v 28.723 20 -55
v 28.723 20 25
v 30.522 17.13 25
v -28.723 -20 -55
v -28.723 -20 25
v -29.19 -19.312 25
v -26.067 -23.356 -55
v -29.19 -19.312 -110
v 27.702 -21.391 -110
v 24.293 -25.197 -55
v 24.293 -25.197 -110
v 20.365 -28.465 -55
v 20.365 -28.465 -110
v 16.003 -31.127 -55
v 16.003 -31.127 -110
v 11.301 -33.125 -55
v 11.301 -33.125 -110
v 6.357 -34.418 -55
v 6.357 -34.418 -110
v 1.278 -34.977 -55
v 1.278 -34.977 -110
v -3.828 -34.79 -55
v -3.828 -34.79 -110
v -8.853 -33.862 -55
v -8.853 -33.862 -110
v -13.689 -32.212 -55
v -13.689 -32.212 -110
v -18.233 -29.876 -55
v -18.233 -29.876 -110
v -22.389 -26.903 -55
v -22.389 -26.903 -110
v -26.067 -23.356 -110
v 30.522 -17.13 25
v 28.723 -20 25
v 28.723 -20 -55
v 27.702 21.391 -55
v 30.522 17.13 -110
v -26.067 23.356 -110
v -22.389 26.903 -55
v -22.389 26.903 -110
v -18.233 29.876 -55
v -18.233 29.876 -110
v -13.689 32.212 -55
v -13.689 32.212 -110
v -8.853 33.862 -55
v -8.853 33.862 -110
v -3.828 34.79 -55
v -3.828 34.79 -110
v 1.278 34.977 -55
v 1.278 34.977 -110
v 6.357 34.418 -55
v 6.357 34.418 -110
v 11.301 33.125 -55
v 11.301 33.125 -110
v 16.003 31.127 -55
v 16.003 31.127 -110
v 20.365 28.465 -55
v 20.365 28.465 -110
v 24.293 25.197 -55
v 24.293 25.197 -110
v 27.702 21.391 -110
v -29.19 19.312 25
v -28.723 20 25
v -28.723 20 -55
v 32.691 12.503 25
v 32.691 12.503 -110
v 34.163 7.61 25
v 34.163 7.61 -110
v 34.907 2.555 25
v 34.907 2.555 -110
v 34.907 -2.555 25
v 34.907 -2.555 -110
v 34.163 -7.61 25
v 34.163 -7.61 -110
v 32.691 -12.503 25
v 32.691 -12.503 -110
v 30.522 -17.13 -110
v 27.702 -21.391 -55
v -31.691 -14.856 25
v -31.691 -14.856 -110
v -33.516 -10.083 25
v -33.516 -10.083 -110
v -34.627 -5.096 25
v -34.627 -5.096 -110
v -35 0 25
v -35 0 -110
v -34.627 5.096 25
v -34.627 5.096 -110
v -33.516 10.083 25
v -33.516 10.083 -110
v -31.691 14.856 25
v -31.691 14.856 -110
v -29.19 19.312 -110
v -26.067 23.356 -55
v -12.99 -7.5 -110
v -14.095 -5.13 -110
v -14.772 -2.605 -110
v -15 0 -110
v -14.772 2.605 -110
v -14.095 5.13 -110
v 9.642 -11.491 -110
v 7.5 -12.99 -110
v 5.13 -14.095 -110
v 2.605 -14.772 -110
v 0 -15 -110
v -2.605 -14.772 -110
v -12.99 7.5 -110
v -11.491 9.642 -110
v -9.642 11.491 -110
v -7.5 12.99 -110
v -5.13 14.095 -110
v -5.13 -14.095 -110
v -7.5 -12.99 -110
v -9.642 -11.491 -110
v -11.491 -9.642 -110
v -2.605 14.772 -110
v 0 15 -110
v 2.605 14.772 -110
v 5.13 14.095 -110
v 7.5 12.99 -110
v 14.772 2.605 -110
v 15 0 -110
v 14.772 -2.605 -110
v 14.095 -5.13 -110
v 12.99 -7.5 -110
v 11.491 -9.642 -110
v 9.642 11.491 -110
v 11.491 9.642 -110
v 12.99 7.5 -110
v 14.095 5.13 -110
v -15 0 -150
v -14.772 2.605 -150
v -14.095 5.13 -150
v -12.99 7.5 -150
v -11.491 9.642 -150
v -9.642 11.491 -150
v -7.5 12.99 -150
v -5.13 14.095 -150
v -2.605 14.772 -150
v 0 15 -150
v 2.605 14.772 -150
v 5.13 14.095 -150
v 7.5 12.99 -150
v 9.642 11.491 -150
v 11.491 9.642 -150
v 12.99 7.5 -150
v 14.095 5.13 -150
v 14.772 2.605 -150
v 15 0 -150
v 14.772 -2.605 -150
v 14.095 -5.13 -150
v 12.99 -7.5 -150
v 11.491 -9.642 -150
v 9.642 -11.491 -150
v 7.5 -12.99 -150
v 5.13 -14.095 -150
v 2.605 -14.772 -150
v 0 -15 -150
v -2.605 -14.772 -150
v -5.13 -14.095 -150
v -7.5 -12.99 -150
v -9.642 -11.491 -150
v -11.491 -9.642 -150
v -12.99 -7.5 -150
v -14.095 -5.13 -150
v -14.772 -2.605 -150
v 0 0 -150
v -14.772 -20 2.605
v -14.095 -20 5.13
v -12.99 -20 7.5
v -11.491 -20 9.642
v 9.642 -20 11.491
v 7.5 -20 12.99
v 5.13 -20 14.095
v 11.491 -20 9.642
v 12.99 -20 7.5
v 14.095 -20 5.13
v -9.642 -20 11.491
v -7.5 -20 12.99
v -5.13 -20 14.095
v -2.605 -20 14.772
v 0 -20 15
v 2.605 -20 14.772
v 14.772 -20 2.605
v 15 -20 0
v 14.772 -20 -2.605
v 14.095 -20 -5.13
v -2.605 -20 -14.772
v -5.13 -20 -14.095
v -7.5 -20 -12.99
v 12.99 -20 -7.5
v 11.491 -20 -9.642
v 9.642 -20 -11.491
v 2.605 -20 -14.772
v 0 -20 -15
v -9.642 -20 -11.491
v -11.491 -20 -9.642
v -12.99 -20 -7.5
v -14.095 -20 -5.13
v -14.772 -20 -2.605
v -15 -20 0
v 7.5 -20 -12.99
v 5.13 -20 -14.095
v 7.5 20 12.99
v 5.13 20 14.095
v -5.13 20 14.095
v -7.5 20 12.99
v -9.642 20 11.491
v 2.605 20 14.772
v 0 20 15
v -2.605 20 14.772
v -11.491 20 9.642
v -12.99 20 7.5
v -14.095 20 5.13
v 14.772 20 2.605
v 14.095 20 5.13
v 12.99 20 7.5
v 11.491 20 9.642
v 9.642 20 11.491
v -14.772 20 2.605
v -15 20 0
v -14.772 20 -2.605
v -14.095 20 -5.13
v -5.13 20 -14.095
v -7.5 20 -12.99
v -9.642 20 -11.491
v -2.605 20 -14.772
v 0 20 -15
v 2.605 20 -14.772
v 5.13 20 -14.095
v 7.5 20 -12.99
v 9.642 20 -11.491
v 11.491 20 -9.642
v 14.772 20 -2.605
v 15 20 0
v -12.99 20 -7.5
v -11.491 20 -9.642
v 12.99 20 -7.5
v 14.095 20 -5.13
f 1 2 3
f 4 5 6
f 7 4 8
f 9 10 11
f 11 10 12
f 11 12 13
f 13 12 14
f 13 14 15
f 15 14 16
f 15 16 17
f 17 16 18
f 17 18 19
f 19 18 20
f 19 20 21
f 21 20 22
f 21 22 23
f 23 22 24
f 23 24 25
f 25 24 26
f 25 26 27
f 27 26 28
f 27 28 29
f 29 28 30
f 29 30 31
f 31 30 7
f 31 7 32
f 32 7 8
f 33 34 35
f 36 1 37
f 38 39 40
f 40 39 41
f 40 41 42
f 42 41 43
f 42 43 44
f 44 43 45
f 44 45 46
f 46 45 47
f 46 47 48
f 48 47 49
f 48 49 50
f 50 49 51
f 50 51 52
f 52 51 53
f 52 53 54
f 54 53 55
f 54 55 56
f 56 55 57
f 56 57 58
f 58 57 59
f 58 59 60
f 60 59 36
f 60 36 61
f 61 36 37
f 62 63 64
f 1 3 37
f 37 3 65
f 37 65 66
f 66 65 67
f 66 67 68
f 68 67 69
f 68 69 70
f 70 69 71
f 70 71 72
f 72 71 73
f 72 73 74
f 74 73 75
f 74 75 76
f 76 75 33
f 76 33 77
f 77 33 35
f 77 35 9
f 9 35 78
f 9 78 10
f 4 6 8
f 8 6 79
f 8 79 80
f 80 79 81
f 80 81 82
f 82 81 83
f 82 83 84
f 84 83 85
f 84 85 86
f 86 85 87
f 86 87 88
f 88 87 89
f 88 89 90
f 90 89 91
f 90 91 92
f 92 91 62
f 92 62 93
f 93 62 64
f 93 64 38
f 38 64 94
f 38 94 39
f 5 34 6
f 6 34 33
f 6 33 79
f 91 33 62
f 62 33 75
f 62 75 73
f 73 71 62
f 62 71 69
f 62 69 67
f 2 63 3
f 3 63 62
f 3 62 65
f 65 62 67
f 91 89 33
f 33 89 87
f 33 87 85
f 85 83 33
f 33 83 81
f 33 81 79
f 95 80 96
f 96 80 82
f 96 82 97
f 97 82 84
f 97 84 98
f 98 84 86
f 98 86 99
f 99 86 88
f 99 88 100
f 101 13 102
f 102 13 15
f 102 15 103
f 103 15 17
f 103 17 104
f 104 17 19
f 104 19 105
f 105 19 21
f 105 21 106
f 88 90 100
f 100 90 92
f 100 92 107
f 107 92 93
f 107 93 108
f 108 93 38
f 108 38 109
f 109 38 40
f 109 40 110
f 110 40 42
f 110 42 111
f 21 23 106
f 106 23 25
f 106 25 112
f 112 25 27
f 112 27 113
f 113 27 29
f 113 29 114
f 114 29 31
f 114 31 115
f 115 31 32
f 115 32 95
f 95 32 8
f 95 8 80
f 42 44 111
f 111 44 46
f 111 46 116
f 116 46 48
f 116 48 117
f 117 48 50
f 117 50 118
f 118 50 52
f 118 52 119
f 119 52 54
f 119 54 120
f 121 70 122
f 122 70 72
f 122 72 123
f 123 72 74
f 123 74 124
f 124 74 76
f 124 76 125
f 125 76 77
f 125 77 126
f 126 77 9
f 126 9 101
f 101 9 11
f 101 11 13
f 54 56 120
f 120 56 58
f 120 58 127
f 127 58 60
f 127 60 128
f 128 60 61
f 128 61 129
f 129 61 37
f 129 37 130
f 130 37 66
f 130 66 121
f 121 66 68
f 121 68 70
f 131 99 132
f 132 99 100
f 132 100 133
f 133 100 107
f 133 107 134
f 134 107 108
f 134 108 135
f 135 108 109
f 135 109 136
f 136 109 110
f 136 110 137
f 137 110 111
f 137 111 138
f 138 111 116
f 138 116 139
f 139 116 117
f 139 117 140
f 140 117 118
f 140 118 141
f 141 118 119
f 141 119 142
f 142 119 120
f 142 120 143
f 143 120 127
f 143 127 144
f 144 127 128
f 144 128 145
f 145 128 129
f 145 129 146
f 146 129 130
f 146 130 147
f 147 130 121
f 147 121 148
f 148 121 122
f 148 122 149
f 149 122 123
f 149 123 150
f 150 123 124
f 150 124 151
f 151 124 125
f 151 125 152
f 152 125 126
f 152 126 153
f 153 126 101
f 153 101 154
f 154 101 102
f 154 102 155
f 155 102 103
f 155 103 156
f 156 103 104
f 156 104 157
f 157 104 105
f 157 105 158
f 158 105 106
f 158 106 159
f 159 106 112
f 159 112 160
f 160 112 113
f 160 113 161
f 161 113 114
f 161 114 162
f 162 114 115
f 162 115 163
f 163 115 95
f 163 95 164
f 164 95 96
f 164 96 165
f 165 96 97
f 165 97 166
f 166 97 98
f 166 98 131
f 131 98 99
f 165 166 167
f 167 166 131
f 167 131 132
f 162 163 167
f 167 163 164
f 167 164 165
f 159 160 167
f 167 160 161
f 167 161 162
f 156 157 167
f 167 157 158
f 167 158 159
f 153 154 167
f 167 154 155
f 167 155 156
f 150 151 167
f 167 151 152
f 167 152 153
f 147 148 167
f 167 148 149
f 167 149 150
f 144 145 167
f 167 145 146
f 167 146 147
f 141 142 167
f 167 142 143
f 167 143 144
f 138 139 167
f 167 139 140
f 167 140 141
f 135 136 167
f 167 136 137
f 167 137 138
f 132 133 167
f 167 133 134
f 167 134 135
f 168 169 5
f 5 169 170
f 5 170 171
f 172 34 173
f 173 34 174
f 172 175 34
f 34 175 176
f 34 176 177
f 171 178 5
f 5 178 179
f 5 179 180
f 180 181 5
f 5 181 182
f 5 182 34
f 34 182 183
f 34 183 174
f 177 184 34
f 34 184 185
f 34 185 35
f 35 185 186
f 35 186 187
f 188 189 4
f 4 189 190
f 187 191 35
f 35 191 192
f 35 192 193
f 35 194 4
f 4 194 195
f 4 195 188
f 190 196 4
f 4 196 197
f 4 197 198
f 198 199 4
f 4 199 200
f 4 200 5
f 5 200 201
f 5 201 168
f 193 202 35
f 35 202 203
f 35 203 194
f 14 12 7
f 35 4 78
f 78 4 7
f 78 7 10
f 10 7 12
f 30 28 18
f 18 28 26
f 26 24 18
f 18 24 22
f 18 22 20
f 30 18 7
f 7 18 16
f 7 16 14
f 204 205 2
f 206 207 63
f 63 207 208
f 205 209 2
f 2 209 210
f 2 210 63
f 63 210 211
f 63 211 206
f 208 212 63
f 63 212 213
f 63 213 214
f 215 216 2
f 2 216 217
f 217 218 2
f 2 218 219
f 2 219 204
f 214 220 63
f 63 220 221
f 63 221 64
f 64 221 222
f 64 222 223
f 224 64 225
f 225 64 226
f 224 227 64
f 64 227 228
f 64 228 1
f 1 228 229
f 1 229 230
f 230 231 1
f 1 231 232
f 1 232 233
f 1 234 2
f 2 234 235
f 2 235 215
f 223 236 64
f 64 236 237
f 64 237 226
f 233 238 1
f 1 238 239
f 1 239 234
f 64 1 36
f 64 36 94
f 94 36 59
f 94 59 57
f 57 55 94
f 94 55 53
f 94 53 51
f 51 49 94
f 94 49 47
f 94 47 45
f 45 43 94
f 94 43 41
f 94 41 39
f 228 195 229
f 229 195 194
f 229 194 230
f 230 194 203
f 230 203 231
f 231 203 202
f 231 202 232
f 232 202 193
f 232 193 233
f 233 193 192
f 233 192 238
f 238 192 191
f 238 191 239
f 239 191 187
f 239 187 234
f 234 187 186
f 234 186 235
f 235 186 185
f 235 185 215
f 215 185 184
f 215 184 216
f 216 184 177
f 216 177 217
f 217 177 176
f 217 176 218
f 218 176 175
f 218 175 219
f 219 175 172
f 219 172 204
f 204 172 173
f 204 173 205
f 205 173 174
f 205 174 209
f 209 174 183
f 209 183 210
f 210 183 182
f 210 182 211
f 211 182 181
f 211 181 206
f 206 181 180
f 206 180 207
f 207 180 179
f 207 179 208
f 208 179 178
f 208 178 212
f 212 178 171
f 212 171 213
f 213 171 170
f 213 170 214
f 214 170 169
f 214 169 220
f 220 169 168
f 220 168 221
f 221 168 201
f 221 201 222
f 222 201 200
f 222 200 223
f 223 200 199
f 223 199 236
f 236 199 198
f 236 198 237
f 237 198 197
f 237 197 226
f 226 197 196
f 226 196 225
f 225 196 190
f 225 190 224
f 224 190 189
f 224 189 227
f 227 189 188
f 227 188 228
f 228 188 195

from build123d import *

# Parameters (mm, degrees)
BOSS_EXTRUDE2_DEPTH      = 25
BOSS_EXTRUDE2_DEPTH_BACK = 150
SKETCH3_R                = 35
SKETCH4_R                = 35
SKETCH4_R_2              = 15
CUT_EXTRUDE1_DEPTH       = 40
CUT_EXTRUDE2_START       = -80
CUT_EXTRUDE2_DEPTH       = 80
SKETCH7_R                = 15
CUT_EXTRUDE3_DEPTH       = 164.554272338


with BuildPart() as part:
    # Sketch3 → Boss-Extrude2 (new, two sides: drawn at the far end of the back side and taken through both)
    with BuildSketch(Plane.XY.offset(-BOSS_EXTRUDE2_DEPTH_BACK)):
        Circle(SKETCH3_R)
    extrude(amount=BOSS_EXTRUDE2_DEPTH + BOSS_EXTRUDE2_DEPTH_BACK)

    # Sketch4 → Cut-Extrude1 (cut)
    with BuildSketch(Plane(origin=(0, 0, -150), x_dir=(-1, 0, 0), z_dir=(0, 0, -1))):
        Circle(SKETCH4_R)
        Circle(SKETCH4_R_2, mode=Mode.SUBTRACT)
    extrude(amount=-CUT_EXTRUDE1_DEPTH, mode=Mode.SUBTRACT)

    # Sketch5 → Cut-Extrude2 (cut)
    with BuildSketch(Plane.XY.offset(25).offset(CUT_EXTRUDE2_START)):
        with BuildLine():
            Line((-28.722813233, 20), (28.722813233, 20))
            ThreePointArc((28.722813233, 20), (0, 35), (-28.722813233, 20))
        make_face()
        with BuildLine():
            Line((-28.722813233, -20), (28.722813233, -20))
            ThreePointArc((28.722813233, -20), (0, -35), (-28.722813233, -20))
        make_face()
    extrude(amount=CUT_EXTRUDE2_DEPTH, mode=Mode.SUBTRACT)

    # Sketch7 → Cut-Extrude3 (cut, through all)
    with BuildSketch(Plane.XZ.offset(20)):
        with Locations(Location((0, 0, 0), (0, 0, 270))):
            Circle(SKETCH7_R)
    extrude(amount=-CUT_EXTRUDE3_DEPTH, mode=Mode.SUBTRACT)


solid = part.part
